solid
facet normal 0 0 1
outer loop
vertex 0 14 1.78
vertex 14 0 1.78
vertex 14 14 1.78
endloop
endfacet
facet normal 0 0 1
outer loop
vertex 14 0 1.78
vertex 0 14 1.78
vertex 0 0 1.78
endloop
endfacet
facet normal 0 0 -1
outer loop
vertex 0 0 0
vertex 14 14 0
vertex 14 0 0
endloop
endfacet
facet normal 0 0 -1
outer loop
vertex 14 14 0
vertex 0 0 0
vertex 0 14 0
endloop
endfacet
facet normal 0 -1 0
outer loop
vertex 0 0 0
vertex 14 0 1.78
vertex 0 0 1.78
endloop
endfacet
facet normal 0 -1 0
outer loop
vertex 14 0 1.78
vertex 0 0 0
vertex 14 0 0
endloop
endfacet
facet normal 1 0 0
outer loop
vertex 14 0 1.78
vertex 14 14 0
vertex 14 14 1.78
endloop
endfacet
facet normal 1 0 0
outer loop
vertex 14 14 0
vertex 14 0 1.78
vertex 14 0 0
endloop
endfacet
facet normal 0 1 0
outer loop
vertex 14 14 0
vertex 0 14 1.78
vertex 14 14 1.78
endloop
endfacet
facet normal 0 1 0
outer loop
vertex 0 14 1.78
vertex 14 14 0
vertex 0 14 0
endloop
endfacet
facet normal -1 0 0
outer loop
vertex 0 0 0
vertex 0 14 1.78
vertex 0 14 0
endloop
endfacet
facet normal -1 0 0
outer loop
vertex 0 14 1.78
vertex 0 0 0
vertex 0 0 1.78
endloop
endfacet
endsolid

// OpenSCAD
/* Warning, this is a very basic generator with a lot of approximation 
input data : [FCCSP, 3HW, 14x14x1.78mm, 256, , B, C04-00563B]
generated by com.zoubworld.electronics.cad.model3d.Basic
Date : Sun Feb 15 10:50:49 CET 2026
*/

//body
color("black")
translate([0,0,0])
cube([14.0,14.0,1.78], center=false);
